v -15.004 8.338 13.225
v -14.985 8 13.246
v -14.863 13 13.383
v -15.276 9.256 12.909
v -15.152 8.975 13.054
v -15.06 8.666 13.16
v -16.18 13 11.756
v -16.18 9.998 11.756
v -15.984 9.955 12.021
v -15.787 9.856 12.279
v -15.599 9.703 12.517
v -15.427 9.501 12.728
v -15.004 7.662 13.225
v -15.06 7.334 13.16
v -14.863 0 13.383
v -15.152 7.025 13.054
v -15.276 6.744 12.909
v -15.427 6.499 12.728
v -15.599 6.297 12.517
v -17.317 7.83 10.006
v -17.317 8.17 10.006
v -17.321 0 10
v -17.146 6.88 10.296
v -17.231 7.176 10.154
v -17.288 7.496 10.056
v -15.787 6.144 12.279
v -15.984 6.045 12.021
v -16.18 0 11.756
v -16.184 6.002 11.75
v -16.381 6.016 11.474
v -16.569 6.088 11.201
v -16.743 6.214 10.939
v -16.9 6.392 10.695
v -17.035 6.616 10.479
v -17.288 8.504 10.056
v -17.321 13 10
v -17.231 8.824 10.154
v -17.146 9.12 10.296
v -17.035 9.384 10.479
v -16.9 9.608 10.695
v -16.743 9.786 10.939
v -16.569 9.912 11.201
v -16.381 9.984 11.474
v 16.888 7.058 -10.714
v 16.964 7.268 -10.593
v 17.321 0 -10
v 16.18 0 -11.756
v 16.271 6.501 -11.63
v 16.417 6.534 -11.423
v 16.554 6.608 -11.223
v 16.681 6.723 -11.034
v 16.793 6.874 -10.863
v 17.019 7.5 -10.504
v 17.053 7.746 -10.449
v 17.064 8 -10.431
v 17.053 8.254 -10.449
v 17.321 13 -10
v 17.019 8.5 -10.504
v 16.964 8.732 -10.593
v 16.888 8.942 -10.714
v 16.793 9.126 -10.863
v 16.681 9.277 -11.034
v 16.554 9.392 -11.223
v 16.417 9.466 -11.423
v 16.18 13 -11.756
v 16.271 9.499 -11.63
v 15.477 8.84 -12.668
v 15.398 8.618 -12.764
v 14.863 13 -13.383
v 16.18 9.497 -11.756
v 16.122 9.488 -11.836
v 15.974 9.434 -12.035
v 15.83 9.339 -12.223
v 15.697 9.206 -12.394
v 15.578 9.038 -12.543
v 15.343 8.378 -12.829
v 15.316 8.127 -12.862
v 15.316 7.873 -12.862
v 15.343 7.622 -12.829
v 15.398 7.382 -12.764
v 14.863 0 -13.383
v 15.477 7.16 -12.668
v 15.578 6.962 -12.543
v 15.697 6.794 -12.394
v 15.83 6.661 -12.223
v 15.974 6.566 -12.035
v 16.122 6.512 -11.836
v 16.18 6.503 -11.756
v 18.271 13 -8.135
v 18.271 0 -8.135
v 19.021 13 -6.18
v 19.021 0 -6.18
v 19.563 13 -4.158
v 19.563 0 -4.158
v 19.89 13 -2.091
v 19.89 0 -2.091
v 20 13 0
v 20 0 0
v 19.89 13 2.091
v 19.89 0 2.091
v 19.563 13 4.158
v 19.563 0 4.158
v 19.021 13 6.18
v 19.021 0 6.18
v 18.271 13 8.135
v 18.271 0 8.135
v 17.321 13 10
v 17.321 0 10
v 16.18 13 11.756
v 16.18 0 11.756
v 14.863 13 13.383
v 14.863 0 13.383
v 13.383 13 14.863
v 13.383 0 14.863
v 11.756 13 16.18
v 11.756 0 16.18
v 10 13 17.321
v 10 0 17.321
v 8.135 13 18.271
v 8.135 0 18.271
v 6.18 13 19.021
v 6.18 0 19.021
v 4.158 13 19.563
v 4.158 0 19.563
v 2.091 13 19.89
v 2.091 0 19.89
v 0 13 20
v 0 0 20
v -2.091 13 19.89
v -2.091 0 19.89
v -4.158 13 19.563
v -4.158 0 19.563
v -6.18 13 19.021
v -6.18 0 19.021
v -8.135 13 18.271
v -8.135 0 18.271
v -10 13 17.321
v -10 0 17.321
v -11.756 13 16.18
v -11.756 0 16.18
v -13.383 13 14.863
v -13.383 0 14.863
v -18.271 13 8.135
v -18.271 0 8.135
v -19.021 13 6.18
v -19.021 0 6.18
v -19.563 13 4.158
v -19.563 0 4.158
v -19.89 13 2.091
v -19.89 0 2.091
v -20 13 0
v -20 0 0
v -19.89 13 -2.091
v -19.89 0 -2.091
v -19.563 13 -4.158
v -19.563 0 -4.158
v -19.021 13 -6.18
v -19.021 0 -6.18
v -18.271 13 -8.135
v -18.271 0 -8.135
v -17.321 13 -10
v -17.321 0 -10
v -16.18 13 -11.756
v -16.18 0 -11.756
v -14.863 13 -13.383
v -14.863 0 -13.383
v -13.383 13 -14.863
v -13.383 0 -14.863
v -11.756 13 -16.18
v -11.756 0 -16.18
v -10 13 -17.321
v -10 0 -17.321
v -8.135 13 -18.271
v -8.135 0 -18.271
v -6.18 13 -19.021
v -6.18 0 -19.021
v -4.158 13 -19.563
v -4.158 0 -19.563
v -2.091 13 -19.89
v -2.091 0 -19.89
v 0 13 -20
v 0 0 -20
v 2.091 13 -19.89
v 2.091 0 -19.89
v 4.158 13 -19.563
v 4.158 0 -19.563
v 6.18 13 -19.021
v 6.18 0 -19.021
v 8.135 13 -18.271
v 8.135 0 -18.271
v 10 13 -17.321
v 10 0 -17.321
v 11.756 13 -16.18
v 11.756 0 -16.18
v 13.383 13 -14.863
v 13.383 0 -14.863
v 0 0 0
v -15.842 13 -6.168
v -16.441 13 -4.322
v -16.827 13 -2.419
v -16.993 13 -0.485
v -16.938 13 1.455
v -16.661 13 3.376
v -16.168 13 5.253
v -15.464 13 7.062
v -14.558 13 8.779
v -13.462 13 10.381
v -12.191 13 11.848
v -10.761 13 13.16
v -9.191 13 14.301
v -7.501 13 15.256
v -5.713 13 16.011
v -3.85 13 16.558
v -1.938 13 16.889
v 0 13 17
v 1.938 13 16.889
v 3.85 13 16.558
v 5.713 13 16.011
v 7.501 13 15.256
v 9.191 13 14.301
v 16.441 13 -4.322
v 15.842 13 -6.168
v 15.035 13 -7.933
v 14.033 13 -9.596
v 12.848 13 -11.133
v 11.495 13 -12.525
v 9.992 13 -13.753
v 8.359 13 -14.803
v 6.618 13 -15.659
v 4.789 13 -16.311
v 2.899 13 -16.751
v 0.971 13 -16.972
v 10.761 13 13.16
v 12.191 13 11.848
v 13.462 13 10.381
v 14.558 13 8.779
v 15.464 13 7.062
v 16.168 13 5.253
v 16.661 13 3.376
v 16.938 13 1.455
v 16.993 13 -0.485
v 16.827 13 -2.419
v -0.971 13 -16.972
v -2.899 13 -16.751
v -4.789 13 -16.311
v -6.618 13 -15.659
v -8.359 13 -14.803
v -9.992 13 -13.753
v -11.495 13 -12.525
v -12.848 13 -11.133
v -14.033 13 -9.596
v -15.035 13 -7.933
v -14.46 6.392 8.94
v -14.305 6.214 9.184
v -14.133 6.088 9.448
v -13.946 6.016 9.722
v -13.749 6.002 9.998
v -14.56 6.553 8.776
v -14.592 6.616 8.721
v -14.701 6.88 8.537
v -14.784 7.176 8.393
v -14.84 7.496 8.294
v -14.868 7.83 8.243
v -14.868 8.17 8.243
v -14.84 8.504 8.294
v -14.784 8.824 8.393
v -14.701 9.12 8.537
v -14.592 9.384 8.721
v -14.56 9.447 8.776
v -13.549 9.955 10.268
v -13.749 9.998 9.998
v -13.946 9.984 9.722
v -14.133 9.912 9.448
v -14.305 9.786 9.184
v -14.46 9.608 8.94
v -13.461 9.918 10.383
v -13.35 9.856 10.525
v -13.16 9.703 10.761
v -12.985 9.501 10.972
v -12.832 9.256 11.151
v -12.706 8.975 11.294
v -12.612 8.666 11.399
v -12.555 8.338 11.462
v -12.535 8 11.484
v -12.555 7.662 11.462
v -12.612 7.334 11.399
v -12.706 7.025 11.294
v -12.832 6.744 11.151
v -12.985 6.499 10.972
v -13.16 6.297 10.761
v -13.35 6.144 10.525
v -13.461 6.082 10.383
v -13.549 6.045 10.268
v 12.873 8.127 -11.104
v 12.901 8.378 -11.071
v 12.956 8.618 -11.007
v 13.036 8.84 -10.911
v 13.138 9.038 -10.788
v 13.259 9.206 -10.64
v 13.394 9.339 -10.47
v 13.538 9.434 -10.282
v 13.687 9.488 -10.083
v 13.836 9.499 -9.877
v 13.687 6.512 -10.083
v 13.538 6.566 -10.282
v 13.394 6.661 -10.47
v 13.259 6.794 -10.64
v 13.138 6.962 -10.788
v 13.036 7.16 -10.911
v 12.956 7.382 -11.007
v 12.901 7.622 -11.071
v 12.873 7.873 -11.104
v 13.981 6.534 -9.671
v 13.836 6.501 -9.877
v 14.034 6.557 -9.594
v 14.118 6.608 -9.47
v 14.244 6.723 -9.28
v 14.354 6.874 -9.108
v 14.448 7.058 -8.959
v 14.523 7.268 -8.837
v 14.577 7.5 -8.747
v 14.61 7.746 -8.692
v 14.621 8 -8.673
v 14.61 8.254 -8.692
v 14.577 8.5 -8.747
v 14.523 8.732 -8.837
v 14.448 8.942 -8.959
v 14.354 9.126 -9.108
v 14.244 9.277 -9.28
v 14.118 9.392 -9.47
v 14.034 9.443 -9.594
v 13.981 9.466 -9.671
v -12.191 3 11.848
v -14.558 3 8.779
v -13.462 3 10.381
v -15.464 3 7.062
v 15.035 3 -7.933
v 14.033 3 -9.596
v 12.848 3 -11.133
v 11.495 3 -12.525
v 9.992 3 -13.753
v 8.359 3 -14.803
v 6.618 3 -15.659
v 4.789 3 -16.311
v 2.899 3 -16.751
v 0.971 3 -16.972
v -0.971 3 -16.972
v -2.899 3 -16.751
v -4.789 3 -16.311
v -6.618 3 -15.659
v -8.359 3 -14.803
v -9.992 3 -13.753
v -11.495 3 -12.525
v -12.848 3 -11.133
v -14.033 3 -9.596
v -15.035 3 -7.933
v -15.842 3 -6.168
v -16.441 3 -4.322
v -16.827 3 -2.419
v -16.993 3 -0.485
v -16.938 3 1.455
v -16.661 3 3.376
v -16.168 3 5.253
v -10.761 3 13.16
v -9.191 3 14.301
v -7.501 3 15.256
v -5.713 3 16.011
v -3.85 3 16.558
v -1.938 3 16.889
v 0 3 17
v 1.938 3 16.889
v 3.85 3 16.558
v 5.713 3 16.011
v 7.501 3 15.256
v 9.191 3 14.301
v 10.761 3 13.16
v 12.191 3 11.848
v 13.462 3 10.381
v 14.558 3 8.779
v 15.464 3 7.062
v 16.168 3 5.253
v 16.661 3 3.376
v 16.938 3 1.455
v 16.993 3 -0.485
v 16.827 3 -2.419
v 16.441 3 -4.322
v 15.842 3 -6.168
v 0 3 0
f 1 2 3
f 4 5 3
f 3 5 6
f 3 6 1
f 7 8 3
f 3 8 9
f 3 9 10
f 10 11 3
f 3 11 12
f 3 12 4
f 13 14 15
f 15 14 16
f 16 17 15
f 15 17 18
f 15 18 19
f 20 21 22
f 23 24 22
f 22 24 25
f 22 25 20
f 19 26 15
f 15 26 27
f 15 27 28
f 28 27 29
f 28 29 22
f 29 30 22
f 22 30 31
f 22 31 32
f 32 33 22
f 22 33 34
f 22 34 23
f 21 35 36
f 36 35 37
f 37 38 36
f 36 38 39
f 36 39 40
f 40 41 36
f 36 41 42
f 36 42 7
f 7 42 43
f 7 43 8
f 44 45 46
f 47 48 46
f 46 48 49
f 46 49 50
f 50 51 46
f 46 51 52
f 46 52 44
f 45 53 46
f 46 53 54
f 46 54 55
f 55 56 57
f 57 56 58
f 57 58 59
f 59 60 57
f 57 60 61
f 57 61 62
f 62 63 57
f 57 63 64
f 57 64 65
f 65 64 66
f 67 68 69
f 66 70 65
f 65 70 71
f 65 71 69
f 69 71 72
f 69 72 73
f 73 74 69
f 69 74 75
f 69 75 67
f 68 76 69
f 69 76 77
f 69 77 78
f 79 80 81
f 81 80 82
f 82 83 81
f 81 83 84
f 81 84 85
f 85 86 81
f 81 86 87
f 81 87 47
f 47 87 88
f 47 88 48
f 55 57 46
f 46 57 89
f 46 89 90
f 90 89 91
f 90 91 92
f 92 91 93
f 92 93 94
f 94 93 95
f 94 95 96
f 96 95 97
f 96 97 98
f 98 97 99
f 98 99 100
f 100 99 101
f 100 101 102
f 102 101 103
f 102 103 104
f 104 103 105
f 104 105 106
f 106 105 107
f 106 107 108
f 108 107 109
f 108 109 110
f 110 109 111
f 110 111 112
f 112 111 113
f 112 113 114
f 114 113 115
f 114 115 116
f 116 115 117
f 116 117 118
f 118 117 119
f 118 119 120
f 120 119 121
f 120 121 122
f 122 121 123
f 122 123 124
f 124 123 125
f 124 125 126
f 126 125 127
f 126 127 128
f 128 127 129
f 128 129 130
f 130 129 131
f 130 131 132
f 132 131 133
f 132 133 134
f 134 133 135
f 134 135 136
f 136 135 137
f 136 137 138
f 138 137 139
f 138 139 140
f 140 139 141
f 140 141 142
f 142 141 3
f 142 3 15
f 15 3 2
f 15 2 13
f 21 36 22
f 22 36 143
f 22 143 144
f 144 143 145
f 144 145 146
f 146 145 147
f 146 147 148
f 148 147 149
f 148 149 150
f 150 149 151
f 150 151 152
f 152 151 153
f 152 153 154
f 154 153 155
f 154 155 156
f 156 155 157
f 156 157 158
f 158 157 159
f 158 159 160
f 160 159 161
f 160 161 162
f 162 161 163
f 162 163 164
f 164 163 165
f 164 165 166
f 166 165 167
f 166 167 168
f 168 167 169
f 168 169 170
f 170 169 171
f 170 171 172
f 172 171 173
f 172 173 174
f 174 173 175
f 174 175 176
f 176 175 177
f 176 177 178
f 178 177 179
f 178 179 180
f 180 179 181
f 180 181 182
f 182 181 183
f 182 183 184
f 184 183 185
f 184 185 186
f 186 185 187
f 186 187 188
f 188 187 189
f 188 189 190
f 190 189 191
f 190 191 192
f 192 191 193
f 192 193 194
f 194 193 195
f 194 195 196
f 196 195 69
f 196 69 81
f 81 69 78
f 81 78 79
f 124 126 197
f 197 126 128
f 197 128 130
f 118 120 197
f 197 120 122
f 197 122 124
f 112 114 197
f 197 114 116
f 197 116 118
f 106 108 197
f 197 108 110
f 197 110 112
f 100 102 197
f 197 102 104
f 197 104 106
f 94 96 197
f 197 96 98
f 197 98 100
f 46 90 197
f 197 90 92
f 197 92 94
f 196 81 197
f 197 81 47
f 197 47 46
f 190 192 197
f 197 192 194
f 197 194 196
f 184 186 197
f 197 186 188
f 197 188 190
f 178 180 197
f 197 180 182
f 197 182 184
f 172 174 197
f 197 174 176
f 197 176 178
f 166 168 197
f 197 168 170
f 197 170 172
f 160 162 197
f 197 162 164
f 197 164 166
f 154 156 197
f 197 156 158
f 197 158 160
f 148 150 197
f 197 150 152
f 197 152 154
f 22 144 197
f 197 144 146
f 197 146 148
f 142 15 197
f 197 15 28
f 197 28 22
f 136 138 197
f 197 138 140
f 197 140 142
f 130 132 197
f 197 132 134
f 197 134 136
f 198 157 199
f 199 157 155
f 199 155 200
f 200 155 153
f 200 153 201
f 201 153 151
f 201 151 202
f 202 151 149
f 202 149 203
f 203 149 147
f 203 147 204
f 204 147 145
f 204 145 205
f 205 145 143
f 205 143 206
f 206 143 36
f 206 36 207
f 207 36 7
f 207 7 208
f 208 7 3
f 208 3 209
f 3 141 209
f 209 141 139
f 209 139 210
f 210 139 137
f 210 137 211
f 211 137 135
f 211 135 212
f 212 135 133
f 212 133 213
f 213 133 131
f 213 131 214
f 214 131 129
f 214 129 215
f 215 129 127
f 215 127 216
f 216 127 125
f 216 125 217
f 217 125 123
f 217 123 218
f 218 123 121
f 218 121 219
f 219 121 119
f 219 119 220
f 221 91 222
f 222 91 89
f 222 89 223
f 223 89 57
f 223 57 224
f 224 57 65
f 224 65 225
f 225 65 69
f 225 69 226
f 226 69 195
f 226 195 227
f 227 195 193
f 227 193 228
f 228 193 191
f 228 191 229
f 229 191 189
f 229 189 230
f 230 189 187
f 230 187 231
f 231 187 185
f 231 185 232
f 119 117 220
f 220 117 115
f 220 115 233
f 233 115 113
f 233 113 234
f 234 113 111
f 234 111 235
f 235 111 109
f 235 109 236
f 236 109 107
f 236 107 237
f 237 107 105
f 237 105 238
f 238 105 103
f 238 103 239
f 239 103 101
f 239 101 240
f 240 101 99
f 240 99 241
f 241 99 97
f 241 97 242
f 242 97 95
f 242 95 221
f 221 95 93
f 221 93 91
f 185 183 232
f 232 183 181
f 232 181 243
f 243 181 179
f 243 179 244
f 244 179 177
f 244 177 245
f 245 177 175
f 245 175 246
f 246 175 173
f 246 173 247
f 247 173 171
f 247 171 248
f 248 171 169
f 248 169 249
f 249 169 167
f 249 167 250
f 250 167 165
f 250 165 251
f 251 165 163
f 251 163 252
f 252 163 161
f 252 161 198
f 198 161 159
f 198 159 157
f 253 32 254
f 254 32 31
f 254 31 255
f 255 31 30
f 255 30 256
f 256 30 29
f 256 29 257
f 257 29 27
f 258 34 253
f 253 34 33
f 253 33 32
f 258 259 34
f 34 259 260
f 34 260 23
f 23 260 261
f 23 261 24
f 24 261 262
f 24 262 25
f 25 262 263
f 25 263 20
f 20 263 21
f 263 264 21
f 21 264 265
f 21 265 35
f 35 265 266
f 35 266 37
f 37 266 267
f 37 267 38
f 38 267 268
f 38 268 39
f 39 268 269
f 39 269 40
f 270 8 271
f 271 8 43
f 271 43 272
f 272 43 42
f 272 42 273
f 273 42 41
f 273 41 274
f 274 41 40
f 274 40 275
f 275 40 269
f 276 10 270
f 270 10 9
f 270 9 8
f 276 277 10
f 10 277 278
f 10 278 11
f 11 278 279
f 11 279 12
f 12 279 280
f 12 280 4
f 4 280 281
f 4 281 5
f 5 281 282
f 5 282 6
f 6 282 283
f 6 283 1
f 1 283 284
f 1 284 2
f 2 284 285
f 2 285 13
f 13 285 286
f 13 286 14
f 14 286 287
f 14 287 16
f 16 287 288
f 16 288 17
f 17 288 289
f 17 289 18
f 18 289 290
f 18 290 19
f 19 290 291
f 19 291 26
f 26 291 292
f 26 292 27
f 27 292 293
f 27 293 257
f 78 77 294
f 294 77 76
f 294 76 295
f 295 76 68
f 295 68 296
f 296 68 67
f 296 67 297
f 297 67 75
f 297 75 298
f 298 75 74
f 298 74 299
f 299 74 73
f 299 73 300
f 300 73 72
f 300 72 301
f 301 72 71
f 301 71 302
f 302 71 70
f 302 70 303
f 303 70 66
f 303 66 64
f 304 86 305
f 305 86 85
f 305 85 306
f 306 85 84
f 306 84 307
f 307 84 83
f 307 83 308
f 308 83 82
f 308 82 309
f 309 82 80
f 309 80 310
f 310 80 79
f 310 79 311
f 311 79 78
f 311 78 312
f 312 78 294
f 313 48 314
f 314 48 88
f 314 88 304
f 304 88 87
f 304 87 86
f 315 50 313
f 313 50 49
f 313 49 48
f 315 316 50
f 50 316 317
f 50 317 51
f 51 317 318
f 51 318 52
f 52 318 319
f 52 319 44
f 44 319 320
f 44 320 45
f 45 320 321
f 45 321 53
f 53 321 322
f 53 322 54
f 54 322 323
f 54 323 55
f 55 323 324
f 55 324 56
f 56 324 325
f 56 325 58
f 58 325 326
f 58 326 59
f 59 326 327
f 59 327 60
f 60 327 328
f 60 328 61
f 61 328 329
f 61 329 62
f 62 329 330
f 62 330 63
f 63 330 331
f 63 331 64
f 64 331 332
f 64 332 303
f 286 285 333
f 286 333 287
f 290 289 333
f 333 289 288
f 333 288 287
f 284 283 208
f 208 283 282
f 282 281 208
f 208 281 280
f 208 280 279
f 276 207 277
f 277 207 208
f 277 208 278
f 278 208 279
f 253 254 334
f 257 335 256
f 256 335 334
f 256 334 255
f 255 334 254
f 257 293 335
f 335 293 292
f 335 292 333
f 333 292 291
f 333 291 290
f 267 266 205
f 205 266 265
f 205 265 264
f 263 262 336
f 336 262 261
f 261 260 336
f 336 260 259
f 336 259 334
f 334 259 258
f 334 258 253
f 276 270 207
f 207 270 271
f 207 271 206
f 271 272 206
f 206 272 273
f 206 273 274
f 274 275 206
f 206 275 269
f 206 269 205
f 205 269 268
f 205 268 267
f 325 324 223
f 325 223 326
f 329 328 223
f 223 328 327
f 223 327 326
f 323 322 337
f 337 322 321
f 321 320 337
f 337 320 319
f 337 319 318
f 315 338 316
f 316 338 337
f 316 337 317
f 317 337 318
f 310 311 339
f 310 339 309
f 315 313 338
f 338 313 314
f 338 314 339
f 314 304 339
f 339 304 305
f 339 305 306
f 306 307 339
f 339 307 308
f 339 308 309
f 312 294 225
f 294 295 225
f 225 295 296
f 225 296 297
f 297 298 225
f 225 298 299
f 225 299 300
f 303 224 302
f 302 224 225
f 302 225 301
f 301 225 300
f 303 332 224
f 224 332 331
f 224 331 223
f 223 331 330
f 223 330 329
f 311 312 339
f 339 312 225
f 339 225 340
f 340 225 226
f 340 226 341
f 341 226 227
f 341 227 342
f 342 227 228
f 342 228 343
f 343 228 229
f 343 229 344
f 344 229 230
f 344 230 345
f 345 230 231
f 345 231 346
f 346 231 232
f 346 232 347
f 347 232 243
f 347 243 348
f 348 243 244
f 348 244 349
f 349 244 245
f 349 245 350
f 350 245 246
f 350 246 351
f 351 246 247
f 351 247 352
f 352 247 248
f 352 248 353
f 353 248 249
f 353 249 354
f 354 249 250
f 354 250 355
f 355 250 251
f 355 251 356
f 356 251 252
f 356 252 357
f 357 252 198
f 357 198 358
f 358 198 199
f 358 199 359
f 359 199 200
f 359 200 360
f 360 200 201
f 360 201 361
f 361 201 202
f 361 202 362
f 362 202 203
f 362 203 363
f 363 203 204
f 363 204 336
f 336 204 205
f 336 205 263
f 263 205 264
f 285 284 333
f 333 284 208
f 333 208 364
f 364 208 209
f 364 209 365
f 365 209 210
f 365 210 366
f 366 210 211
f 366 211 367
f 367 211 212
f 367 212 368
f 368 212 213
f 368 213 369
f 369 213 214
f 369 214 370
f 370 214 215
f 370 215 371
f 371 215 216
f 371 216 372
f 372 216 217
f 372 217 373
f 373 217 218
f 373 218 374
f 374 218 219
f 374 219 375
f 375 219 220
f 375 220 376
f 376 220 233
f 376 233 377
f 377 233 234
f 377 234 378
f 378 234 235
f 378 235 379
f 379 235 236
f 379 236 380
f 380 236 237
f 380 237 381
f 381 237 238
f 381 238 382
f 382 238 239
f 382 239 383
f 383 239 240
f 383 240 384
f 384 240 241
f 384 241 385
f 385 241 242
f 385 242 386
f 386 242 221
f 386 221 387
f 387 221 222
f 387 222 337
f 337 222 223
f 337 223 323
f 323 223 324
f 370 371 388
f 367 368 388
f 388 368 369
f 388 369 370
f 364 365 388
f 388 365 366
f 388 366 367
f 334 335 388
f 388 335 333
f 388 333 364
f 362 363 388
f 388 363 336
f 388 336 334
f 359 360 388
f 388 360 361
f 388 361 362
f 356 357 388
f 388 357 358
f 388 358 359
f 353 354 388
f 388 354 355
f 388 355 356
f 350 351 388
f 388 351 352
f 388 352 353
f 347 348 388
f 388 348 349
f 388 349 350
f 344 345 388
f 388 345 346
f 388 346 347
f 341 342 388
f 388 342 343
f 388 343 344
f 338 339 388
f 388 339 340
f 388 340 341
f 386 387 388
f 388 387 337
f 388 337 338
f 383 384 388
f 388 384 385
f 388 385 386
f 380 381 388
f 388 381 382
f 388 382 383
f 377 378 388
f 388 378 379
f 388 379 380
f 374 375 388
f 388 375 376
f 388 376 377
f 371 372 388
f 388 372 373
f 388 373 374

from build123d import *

# Parameters (mm, degrees)
SKETCH1_R              = 20
BOSS_EXTRUDE2_DEPTH    = 8
SKETCH7_R              = 20
BOSS_EXTRUDE3_DEPTH    = 5
CUT_EXTRUDE2_START     = -20.000000091
CUT_EXTRUDE2_OUTLINE_R = 2
CUT_EXTRUDE2_DEPTH     = 20.00000009
SKETCH14_R             = 1.5
CUT_EXTRUDE3_DEPTH     = 25
SKETCH15_R             = 17
CUT_EXTRUDE4_DEPTH     = 10


# Read off the part's stored shape, not the designer's step: Cut-Extrude2
with BuildPart() as part:
    # Sketch1 → Boss-Extrude2 (new body)
    with BuildSketch(Plane(origin=(0, 0, 0), x_dir=(1, 0, 0), z_dir=(0, 1, 0))):
        with Locations(Location((0, 0, 0), (0, 0, 270))):
            Circle(SKETCH1_R)
    extrude(amount=BOSS_EXTRUDE2_DEPTH)

    # Sketch7 → Boss-Extrude3 (add)
    with BuildSketch(Plane(origin=(0, 8, 0), x_dir=(1, 0, 0), z_dir=(0, 1, 0))):
        with Locations(Location((0, 0, 0), (0, 0, 270))):
            Circle(SKETCH7_R)
    extrude(amount=BOSS_EXTRUDE3_DEPTH)

    # Cut-Extrude2 outline → Cut-Extrude2 (cut)
    with BuildSketch(Plane(origin=(0, 0, 0), x_dir=(0.5840722771163888, 0, 0.8117016539986083), z_dir=(0.8117016539986082, 0, -0.5840722771163891)).offset(CUT_EXTRUDE2_START)):
        with Locations((0, -8)):
            Circle(CUT_EXTRUDE2_OUTLINE_R)
    extrude(amount=CUT_EXTRUDE2_DEPTH, mode=Mode.SUBTRACT)

    # Sketch14 → Cut-Extrude3 (cut)
    with BuildSketch(Plane(origin=(0, 0, 0), x_dir=(0.5840722775801191, 0, 0.8117016536649241), z_dir=(-0.8117016536649241, 0, 0.5840722775801191))):
        with Locations((0, 8)):
            Circle(SKETCH14_R)
    extrude(amount=-CUT_EXTRUDE3_DEPTH, mode=Mode.SUBTRACT)

    # Sketch15 → Cut-Extrude4 (cut)
    with BuildSketch(Plane(origin=(0, 13, 0), x_dir=(1, 0, 0), z_dir=(0, 1, 0))):
        with Locations(Location((0, 0, 0), (0, 0, 270))):
            Circle(SKETCH15_R)
    extrude(amount=-CUT_EXTRUDE4_DEPTH, mode=Mode.SUBTRACT)


solid = part.part
